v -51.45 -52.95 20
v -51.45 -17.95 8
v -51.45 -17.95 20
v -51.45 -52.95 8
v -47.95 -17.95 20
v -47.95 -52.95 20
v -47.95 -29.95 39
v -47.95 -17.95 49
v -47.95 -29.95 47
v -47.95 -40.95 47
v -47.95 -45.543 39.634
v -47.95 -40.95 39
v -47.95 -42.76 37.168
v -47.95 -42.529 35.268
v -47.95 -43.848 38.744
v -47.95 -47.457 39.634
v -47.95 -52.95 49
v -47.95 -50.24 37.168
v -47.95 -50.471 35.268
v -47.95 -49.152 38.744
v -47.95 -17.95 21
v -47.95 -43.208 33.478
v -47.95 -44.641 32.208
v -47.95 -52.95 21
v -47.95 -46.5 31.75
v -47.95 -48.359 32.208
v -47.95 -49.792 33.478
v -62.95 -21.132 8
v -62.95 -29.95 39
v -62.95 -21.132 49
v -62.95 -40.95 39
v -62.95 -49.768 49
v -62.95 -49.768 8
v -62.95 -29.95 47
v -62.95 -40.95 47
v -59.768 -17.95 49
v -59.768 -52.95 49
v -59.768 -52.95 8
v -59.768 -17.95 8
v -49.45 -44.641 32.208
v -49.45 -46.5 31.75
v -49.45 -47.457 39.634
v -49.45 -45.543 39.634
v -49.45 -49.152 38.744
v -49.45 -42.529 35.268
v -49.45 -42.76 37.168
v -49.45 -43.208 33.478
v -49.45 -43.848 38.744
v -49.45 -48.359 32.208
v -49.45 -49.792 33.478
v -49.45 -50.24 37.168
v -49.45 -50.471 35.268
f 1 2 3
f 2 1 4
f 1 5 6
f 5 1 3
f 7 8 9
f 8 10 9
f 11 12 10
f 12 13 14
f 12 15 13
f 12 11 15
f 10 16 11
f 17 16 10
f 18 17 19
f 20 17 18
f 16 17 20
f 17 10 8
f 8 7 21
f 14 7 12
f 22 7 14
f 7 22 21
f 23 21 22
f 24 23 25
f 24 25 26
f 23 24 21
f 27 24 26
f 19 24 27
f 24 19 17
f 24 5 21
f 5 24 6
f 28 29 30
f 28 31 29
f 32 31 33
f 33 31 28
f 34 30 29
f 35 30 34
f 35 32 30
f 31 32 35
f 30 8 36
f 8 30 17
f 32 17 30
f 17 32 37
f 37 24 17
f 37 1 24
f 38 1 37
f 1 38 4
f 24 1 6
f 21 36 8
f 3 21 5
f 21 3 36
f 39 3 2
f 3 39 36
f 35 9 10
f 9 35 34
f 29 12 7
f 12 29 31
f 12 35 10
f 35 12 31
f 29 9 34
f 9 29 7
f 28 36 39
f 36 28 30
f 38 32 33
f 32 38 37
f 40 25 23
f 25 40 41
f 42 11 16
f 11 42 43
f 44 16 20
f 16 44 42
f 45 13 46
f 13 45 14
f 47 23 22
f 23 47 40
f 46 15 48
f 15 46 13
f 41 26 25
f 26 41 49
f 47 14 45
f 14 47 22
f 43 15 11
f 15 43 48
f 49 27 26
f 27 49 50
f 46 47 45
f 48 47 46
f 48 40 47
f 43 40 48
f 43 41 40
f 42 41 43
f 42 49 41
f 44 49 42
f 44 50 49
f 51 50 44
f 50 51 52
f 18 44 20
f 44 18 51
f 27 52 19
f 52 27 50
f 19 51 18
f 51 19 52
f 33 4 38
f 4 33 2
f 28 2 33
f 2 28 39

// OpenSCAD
//variables, in mm
foot_width=140; //size of total object, width
foot_length=140;    //size of total object, length (y axis of printrbot)
leg_width=18;   //width of sticking-out-feet
frame_thick=2.2;  //thickness of metal printrbot frame
front_ledge=3;  //how much thickness in front of edge
protrude=3;     //how much the metal plates protrude past the side, i.e. the notch needed on the front
side_ledge=3.5;   //how much thickness on sides and inside
inside_width=91.5;    //space between metal walls, inside
lip=12;         //how tall to make the part that slides over the metal sides
lift=8;         //how thick of a baseplate
usb_thick=15;   //how thick usb strain relieft should be
usb_wide=35;    //width
usb_tall=41;    //height    
usb_w=11;       //width of usb plug
usb_h=8;        //height of usb plug
usb_y=102.45;  //center of plug, relative to front edge
usb_z=35;   //center of plug, relative to top of base plate
clip_h=45;  //how tall wrap around clip should be- top of base plate to bottom of groove
clip_split=5;  //where to split clip
clip_wide=15;   //width of clip
clip_groove=1.75;  //depth of groove on top of clip
clip_thick=7; //thickness of clip
tab_thick=3.2; //tab thickness, should be multiple of extrusion width
tab_wide=6.4; //tab width
tab_slop=.3;    //additional gab to have around slot for tab due to printer tolerances
tab_length=5;
gap_width=60;
gap_y=50;   //front edge of metal to middle of cutout
center_bar=30;
curve_40=2.35;
curve_80=5.25;
curve_120=6;

rivet1_z=34.3;
rivet1_y=12.6;
rivet2_z=27.75;
rivet2_y=113.5;
rivet_r=4;
rivet_thick=1.5;

//intermediate values
front_yy=front_ledge+protrude+frame_thick+side_ledge;
side_xx=side_ledge*2+frame_thick;
inner_xx=inside_width+2*(frame_thick+side_ledge);

module rivet1()
{
    translate([-1*(inside_width/2+frame_thick),foot_length/2-front_ledge-rivet1_y,lift+rivet1_z])
    {
        rotate([0,90,0])
        {
            cylinder(h=2*rivet_thick, r1=rivet_r, r2=rivet_r, center=true);
        }
    }
}



module rivet1a()
{
    translate([1*(inside_width/2+frame_thick),foot_length/2-front_ledge-rivet1_y,lift+rivet1_z])
    {
        rotate([0,90,0])
        {
            cylinder(h=2*rivet_thick, r1=rivet_r, r2=rivet_r, center=true);
        }
    }
}



module rivet2()
{
    translate([-1*(inside_width/2+frame_thick),foot_length/2-front_ledge-rivet2_y,lift+rivet2_z])
    {
        rotate([0,90,0])
        {
            cylinder(h=2*rivet_thick, r1=rivet_r, r2=rivet_r, center=true);
        }
    }
}


//supports due to curve
module curve_adj()
{

union()
    {
        translate([-1*(inside_width/2)-frame_thick/2,foot_length/2-front_ledge-40,lift])
        {
        cube([frame_thick*2,frame_thick*2,curve_40*2],center=true);
        }
        translate([1*(inside_width/2)+frame_thick/2,foot_length/2-front_ledge-40,lift])
        {
        cube([frame_thick*2,frame_thick*2,curve_40*2],center=true);
        }
        translate([-1*(inside_width/2)-frame_thick/2,foot_length/2-front_ledge-80,lift])
        {
        cube([frame_thick*2,frame_thick*2,curve_80*2],center=true);
        }
        translate([1*(inside_width/2)+frame_thick/2,foot_length/2-front_ledge-80,lift])
        {
        cube([frame_thick*2,frame_thick*2,curve_80*2],center=true);
        }
        translate([-1*(inside_width/2)-frame_thick/2,foot_length/2-front_ledge-120,lift])
        {
        cube([frame_thick*2,frame_thick*2,curve_120*2],center=true);
        }
        translate([1*(inside_width/2)+frame_thick/2,foot_length/2-front_ledge-120,lift])
        {
        cube([frame_thick*2,frame_thick*2,curve_120*2],center=true);
        }
    }
}
//baseplate
module base()
{
    linear_extrude(height=lift)
    union()
    {
    square(size=[(frame_thick+side_ledge)*2+inside_width,foot_length], center=true);
    translate([0,-1*((foot_length-leg_width)/2)])
        {
            union()
            {
            //legs
            square([foot_width-leg_width,leg_width],center=true);
            translate([foot_width/2-leg_width/2,0])
                {
                circle(r=leg_width/2,center=true);
                }
            translate([-1*(foot_width/2-leg_width/2),0])
                {
                circle(r=leg_width/2,center=true);
                }
            }
        }
    translate([0,1*((foot_length-leg_width)/2)])
        {
            //legs
            square([foot_width-leg_width,leg_width],center=true);
            translate([foot_width/2-leg_width/2,0])
                {
                circle(r=leg_width/2,center=true);
                }
            translate([-1*(foot_width/2-leg_width/2),0])
                {
                circle(r=leg_width/2,center=true);
                }
        }
    }
}
module slot()
{
    //difference()
    {
        
        union()
        {
            //front prism
            translate([0,(foot_length-front_yy)/2,(lip+lift)/2])
            {
            cube([(frame_thick+side_ledge)*2+inside_width,front_yy,lip+lift],center=true);
            }
            translate([(inner_xx-side_xx)/2,0,(lip+lift)/2])
            {
            cube([side_xx,foot_length,lip+lift],center=true);
            }
            translate([-1*(inner_xx-side_xx)/2,0,(lip+lift)/2])
            {
            cube([side_xx,foot_length,lip+lift],center=true);
            }
        }
            
        
        //difference()
        {
            union()
            {
                translate([0,((foot_length)/2)-front_ledge-frame_thick/2-protrude,(.5*lip+lift+.5)])
                {
                cube([(inside_width+frame_thick*2),frame_thick,lip+1],center=true);//1 so that faces don't overlap
                }
                translate([(inner_xx-side_xx)/2,-1*(front_ledge),(.5*lip+lift+.5)])
                {
                cube([frame_thick,foot_length,lip+1],center=true);
                }
                translate([-1*(inner_xx-side_xx)/2,-1*(front_ledge),(.5*lip+lift+.5)])
                {
                cube([frame_thick,foot_length,lip+1],center=true);
                }
            }
            curve_adj();
        }
    }
}

module usb()
{
    difference()
    {
        difference()
        {
            translate([-1*(frame_thick+(inside_width+usb_thick)/2),(foot_length/2)-front_ledge-usb_y,(usb_tall+lift)/2])
            {
            cube([usb_thick,usb_wide,usb_tall+lift],center=true);
            }
            translate([-1*(frame_thick+(inside_width+usb_thick)/2),(foot_length/2)-front_ledge-usb_y,lift+usb_z])
            {
            cube([usb_thick*2,usb_w,usb_h],center=true);
            }
        }
    //knock off edges
        union()
        {
            translate([-1*(frame_thick+inside_width/2+usb_thick),(foot_length/2)-front_ledge-usb_y+usb_wide/2,(usb_tall+lift)/2])
            {
                rotate([0,0,45])
                {
                    cube([usb_thick*.3,usb_thick*.3,usb_tall+lift*2], center=true);
                }
            }
            //knock off edges
            translate([-1*(frame_thick+inside_width/2+usb_thick),(foot_length/2)-front_ledge-usb_y-usb_wide/2,(usb_tall+lift)/2])
            {
                rotate([0,0,45])
                {
                    cube([usb_thick*.3,usb_thick*.3,usb_tall+lift*2], center=true);
                }
            }
        }
    }
}

module post()
{
    difference()
    {
        translate([inside_width/2+frame_thick+clip_thick/2,foot_length/2-front_ledge-clip_wide/2,lift+(clip_h-clip_split)/2-lift/2])
        {
            cube([clip_thick,clip_wide,clip_h-clip_split+lift],center=true);
        }
        translate([1*(inside_width/2+frame_thick+clip_thick/2),foot_length/2-front_ledge-clip_wide/2,lift+(clip_h-clip_split)])
        {
            cube([tab_thick+tab_slop,tab_wide+tab_slop,(tab_length-tab_slop)*2],center=true);
        }
    }
    difference()
    {
        translate([-1*(inside_width/2+frame_thick+clip_thick/2),foot_length/2-front_ledge-clip_wide/2,lift+(clip_h-clip_split)/2-lift/2])
        {
            cube([clip_thick,clip_wide,clip_h-clip_split+lift],center=true);
        }
        translate([-1*(inside_width/2+frame_thick+clip_thick/2),foot_length/2-front_ledge-clip_wide/2,lift+(clip_h-clip_split)])
        {
            cube([tab_thick+tab_slop,tab_wide+tab_slop,(tab_length-tab_slop)*2],center=true);
        }
    }
}


module air_cut()
{
    translate([inside_width/2+center_bar/2,foot_length/2-front_ledge-gap_y,0])
    {
    cube([(inside_width),gap_width,lift+lip*10], center=true);
    }
    translate([-1*(inside_width/2+center_bar/2),foot_length/2-front_ledge-gap_y,0])
    {
    cube([(inside_width),gap_width,lift+lip*10], center=true);
    }
}

difference()
{
    difference()
    {
        difference()
            {
                usb();
                rivet2();
            }

        difference()
        {
            union()
            {
                base();
                slot();
                
                difference()
                {
                    post();
                    union()
                    {
                        rivet1();
                        rivet1a();
                    }
                }
            }
            air_cut();
        }
    }
    #cube([200,200,lift*2],center=true);
}
module clip()
{
    difference()
    {
        union()
        {
        translate([200,0,clip_thick/2])
            {
                //base of clip
            cube([clip_thick*2+frame_thick,clip_wide,clip_thick],center=true);
            }
        translate([200-(clip_thick*2+frame_thick)/2+clip_thick/2,0,clip_thick/2+clip_groove/2])
            {
                //short bit
            cube([clip_thick,clip_wide,clip_thick+clip_groove],center=true);
            }
        translate([200+(clip_thick*2+frame_thick)/2-clip_thick/2,0,clip_thick/2+clip_split/2])
            {//tall bit
            cube([clip_thick,clip_wide,clip_thick+clip_split],center=true);
            }
        translate([200+(clip_thick*2+frame_thick)/2-clip_thick/2,0,clip_split+clip_thick])
            {//pin
            cube([tab_thick,tab_wide,tab_length*2],center=true);
            }
        }
        union()
        {
            translate([200+clip_thick+frame_thick/2,0,0])
            {
                //tall side
                rotate([0,45,0])
                {   
                    cube([frame_thick,clip_wide,frame_thick],center=true);
                }
            }
            translate([200-clip_thick-frame_thick/2,0,0])
            {
                //short side
                rotate([0,45,0])
                {   
                    cube([frame_thick,clip_wide,frame_thick],center=true);
                }
            }
            translate([200,clip_wide/2,0])
            {
                //other sides
                rotate([45,0,0])
                {   
                    cube([clip_wide,frame_thick,frame_thick],center=true);
                }
            }
            translate([200,-clip_wide/2,0])
            {
                //other sides
                rotate([45,0,0])
                {   
                    cube([clip_wide,frame_thick,frame_thick],center=true);
                }
            }
        }
    }
}
//clip();

//translate([-150,20,0]) clip();
//translate([-250,20,0]) clip();
